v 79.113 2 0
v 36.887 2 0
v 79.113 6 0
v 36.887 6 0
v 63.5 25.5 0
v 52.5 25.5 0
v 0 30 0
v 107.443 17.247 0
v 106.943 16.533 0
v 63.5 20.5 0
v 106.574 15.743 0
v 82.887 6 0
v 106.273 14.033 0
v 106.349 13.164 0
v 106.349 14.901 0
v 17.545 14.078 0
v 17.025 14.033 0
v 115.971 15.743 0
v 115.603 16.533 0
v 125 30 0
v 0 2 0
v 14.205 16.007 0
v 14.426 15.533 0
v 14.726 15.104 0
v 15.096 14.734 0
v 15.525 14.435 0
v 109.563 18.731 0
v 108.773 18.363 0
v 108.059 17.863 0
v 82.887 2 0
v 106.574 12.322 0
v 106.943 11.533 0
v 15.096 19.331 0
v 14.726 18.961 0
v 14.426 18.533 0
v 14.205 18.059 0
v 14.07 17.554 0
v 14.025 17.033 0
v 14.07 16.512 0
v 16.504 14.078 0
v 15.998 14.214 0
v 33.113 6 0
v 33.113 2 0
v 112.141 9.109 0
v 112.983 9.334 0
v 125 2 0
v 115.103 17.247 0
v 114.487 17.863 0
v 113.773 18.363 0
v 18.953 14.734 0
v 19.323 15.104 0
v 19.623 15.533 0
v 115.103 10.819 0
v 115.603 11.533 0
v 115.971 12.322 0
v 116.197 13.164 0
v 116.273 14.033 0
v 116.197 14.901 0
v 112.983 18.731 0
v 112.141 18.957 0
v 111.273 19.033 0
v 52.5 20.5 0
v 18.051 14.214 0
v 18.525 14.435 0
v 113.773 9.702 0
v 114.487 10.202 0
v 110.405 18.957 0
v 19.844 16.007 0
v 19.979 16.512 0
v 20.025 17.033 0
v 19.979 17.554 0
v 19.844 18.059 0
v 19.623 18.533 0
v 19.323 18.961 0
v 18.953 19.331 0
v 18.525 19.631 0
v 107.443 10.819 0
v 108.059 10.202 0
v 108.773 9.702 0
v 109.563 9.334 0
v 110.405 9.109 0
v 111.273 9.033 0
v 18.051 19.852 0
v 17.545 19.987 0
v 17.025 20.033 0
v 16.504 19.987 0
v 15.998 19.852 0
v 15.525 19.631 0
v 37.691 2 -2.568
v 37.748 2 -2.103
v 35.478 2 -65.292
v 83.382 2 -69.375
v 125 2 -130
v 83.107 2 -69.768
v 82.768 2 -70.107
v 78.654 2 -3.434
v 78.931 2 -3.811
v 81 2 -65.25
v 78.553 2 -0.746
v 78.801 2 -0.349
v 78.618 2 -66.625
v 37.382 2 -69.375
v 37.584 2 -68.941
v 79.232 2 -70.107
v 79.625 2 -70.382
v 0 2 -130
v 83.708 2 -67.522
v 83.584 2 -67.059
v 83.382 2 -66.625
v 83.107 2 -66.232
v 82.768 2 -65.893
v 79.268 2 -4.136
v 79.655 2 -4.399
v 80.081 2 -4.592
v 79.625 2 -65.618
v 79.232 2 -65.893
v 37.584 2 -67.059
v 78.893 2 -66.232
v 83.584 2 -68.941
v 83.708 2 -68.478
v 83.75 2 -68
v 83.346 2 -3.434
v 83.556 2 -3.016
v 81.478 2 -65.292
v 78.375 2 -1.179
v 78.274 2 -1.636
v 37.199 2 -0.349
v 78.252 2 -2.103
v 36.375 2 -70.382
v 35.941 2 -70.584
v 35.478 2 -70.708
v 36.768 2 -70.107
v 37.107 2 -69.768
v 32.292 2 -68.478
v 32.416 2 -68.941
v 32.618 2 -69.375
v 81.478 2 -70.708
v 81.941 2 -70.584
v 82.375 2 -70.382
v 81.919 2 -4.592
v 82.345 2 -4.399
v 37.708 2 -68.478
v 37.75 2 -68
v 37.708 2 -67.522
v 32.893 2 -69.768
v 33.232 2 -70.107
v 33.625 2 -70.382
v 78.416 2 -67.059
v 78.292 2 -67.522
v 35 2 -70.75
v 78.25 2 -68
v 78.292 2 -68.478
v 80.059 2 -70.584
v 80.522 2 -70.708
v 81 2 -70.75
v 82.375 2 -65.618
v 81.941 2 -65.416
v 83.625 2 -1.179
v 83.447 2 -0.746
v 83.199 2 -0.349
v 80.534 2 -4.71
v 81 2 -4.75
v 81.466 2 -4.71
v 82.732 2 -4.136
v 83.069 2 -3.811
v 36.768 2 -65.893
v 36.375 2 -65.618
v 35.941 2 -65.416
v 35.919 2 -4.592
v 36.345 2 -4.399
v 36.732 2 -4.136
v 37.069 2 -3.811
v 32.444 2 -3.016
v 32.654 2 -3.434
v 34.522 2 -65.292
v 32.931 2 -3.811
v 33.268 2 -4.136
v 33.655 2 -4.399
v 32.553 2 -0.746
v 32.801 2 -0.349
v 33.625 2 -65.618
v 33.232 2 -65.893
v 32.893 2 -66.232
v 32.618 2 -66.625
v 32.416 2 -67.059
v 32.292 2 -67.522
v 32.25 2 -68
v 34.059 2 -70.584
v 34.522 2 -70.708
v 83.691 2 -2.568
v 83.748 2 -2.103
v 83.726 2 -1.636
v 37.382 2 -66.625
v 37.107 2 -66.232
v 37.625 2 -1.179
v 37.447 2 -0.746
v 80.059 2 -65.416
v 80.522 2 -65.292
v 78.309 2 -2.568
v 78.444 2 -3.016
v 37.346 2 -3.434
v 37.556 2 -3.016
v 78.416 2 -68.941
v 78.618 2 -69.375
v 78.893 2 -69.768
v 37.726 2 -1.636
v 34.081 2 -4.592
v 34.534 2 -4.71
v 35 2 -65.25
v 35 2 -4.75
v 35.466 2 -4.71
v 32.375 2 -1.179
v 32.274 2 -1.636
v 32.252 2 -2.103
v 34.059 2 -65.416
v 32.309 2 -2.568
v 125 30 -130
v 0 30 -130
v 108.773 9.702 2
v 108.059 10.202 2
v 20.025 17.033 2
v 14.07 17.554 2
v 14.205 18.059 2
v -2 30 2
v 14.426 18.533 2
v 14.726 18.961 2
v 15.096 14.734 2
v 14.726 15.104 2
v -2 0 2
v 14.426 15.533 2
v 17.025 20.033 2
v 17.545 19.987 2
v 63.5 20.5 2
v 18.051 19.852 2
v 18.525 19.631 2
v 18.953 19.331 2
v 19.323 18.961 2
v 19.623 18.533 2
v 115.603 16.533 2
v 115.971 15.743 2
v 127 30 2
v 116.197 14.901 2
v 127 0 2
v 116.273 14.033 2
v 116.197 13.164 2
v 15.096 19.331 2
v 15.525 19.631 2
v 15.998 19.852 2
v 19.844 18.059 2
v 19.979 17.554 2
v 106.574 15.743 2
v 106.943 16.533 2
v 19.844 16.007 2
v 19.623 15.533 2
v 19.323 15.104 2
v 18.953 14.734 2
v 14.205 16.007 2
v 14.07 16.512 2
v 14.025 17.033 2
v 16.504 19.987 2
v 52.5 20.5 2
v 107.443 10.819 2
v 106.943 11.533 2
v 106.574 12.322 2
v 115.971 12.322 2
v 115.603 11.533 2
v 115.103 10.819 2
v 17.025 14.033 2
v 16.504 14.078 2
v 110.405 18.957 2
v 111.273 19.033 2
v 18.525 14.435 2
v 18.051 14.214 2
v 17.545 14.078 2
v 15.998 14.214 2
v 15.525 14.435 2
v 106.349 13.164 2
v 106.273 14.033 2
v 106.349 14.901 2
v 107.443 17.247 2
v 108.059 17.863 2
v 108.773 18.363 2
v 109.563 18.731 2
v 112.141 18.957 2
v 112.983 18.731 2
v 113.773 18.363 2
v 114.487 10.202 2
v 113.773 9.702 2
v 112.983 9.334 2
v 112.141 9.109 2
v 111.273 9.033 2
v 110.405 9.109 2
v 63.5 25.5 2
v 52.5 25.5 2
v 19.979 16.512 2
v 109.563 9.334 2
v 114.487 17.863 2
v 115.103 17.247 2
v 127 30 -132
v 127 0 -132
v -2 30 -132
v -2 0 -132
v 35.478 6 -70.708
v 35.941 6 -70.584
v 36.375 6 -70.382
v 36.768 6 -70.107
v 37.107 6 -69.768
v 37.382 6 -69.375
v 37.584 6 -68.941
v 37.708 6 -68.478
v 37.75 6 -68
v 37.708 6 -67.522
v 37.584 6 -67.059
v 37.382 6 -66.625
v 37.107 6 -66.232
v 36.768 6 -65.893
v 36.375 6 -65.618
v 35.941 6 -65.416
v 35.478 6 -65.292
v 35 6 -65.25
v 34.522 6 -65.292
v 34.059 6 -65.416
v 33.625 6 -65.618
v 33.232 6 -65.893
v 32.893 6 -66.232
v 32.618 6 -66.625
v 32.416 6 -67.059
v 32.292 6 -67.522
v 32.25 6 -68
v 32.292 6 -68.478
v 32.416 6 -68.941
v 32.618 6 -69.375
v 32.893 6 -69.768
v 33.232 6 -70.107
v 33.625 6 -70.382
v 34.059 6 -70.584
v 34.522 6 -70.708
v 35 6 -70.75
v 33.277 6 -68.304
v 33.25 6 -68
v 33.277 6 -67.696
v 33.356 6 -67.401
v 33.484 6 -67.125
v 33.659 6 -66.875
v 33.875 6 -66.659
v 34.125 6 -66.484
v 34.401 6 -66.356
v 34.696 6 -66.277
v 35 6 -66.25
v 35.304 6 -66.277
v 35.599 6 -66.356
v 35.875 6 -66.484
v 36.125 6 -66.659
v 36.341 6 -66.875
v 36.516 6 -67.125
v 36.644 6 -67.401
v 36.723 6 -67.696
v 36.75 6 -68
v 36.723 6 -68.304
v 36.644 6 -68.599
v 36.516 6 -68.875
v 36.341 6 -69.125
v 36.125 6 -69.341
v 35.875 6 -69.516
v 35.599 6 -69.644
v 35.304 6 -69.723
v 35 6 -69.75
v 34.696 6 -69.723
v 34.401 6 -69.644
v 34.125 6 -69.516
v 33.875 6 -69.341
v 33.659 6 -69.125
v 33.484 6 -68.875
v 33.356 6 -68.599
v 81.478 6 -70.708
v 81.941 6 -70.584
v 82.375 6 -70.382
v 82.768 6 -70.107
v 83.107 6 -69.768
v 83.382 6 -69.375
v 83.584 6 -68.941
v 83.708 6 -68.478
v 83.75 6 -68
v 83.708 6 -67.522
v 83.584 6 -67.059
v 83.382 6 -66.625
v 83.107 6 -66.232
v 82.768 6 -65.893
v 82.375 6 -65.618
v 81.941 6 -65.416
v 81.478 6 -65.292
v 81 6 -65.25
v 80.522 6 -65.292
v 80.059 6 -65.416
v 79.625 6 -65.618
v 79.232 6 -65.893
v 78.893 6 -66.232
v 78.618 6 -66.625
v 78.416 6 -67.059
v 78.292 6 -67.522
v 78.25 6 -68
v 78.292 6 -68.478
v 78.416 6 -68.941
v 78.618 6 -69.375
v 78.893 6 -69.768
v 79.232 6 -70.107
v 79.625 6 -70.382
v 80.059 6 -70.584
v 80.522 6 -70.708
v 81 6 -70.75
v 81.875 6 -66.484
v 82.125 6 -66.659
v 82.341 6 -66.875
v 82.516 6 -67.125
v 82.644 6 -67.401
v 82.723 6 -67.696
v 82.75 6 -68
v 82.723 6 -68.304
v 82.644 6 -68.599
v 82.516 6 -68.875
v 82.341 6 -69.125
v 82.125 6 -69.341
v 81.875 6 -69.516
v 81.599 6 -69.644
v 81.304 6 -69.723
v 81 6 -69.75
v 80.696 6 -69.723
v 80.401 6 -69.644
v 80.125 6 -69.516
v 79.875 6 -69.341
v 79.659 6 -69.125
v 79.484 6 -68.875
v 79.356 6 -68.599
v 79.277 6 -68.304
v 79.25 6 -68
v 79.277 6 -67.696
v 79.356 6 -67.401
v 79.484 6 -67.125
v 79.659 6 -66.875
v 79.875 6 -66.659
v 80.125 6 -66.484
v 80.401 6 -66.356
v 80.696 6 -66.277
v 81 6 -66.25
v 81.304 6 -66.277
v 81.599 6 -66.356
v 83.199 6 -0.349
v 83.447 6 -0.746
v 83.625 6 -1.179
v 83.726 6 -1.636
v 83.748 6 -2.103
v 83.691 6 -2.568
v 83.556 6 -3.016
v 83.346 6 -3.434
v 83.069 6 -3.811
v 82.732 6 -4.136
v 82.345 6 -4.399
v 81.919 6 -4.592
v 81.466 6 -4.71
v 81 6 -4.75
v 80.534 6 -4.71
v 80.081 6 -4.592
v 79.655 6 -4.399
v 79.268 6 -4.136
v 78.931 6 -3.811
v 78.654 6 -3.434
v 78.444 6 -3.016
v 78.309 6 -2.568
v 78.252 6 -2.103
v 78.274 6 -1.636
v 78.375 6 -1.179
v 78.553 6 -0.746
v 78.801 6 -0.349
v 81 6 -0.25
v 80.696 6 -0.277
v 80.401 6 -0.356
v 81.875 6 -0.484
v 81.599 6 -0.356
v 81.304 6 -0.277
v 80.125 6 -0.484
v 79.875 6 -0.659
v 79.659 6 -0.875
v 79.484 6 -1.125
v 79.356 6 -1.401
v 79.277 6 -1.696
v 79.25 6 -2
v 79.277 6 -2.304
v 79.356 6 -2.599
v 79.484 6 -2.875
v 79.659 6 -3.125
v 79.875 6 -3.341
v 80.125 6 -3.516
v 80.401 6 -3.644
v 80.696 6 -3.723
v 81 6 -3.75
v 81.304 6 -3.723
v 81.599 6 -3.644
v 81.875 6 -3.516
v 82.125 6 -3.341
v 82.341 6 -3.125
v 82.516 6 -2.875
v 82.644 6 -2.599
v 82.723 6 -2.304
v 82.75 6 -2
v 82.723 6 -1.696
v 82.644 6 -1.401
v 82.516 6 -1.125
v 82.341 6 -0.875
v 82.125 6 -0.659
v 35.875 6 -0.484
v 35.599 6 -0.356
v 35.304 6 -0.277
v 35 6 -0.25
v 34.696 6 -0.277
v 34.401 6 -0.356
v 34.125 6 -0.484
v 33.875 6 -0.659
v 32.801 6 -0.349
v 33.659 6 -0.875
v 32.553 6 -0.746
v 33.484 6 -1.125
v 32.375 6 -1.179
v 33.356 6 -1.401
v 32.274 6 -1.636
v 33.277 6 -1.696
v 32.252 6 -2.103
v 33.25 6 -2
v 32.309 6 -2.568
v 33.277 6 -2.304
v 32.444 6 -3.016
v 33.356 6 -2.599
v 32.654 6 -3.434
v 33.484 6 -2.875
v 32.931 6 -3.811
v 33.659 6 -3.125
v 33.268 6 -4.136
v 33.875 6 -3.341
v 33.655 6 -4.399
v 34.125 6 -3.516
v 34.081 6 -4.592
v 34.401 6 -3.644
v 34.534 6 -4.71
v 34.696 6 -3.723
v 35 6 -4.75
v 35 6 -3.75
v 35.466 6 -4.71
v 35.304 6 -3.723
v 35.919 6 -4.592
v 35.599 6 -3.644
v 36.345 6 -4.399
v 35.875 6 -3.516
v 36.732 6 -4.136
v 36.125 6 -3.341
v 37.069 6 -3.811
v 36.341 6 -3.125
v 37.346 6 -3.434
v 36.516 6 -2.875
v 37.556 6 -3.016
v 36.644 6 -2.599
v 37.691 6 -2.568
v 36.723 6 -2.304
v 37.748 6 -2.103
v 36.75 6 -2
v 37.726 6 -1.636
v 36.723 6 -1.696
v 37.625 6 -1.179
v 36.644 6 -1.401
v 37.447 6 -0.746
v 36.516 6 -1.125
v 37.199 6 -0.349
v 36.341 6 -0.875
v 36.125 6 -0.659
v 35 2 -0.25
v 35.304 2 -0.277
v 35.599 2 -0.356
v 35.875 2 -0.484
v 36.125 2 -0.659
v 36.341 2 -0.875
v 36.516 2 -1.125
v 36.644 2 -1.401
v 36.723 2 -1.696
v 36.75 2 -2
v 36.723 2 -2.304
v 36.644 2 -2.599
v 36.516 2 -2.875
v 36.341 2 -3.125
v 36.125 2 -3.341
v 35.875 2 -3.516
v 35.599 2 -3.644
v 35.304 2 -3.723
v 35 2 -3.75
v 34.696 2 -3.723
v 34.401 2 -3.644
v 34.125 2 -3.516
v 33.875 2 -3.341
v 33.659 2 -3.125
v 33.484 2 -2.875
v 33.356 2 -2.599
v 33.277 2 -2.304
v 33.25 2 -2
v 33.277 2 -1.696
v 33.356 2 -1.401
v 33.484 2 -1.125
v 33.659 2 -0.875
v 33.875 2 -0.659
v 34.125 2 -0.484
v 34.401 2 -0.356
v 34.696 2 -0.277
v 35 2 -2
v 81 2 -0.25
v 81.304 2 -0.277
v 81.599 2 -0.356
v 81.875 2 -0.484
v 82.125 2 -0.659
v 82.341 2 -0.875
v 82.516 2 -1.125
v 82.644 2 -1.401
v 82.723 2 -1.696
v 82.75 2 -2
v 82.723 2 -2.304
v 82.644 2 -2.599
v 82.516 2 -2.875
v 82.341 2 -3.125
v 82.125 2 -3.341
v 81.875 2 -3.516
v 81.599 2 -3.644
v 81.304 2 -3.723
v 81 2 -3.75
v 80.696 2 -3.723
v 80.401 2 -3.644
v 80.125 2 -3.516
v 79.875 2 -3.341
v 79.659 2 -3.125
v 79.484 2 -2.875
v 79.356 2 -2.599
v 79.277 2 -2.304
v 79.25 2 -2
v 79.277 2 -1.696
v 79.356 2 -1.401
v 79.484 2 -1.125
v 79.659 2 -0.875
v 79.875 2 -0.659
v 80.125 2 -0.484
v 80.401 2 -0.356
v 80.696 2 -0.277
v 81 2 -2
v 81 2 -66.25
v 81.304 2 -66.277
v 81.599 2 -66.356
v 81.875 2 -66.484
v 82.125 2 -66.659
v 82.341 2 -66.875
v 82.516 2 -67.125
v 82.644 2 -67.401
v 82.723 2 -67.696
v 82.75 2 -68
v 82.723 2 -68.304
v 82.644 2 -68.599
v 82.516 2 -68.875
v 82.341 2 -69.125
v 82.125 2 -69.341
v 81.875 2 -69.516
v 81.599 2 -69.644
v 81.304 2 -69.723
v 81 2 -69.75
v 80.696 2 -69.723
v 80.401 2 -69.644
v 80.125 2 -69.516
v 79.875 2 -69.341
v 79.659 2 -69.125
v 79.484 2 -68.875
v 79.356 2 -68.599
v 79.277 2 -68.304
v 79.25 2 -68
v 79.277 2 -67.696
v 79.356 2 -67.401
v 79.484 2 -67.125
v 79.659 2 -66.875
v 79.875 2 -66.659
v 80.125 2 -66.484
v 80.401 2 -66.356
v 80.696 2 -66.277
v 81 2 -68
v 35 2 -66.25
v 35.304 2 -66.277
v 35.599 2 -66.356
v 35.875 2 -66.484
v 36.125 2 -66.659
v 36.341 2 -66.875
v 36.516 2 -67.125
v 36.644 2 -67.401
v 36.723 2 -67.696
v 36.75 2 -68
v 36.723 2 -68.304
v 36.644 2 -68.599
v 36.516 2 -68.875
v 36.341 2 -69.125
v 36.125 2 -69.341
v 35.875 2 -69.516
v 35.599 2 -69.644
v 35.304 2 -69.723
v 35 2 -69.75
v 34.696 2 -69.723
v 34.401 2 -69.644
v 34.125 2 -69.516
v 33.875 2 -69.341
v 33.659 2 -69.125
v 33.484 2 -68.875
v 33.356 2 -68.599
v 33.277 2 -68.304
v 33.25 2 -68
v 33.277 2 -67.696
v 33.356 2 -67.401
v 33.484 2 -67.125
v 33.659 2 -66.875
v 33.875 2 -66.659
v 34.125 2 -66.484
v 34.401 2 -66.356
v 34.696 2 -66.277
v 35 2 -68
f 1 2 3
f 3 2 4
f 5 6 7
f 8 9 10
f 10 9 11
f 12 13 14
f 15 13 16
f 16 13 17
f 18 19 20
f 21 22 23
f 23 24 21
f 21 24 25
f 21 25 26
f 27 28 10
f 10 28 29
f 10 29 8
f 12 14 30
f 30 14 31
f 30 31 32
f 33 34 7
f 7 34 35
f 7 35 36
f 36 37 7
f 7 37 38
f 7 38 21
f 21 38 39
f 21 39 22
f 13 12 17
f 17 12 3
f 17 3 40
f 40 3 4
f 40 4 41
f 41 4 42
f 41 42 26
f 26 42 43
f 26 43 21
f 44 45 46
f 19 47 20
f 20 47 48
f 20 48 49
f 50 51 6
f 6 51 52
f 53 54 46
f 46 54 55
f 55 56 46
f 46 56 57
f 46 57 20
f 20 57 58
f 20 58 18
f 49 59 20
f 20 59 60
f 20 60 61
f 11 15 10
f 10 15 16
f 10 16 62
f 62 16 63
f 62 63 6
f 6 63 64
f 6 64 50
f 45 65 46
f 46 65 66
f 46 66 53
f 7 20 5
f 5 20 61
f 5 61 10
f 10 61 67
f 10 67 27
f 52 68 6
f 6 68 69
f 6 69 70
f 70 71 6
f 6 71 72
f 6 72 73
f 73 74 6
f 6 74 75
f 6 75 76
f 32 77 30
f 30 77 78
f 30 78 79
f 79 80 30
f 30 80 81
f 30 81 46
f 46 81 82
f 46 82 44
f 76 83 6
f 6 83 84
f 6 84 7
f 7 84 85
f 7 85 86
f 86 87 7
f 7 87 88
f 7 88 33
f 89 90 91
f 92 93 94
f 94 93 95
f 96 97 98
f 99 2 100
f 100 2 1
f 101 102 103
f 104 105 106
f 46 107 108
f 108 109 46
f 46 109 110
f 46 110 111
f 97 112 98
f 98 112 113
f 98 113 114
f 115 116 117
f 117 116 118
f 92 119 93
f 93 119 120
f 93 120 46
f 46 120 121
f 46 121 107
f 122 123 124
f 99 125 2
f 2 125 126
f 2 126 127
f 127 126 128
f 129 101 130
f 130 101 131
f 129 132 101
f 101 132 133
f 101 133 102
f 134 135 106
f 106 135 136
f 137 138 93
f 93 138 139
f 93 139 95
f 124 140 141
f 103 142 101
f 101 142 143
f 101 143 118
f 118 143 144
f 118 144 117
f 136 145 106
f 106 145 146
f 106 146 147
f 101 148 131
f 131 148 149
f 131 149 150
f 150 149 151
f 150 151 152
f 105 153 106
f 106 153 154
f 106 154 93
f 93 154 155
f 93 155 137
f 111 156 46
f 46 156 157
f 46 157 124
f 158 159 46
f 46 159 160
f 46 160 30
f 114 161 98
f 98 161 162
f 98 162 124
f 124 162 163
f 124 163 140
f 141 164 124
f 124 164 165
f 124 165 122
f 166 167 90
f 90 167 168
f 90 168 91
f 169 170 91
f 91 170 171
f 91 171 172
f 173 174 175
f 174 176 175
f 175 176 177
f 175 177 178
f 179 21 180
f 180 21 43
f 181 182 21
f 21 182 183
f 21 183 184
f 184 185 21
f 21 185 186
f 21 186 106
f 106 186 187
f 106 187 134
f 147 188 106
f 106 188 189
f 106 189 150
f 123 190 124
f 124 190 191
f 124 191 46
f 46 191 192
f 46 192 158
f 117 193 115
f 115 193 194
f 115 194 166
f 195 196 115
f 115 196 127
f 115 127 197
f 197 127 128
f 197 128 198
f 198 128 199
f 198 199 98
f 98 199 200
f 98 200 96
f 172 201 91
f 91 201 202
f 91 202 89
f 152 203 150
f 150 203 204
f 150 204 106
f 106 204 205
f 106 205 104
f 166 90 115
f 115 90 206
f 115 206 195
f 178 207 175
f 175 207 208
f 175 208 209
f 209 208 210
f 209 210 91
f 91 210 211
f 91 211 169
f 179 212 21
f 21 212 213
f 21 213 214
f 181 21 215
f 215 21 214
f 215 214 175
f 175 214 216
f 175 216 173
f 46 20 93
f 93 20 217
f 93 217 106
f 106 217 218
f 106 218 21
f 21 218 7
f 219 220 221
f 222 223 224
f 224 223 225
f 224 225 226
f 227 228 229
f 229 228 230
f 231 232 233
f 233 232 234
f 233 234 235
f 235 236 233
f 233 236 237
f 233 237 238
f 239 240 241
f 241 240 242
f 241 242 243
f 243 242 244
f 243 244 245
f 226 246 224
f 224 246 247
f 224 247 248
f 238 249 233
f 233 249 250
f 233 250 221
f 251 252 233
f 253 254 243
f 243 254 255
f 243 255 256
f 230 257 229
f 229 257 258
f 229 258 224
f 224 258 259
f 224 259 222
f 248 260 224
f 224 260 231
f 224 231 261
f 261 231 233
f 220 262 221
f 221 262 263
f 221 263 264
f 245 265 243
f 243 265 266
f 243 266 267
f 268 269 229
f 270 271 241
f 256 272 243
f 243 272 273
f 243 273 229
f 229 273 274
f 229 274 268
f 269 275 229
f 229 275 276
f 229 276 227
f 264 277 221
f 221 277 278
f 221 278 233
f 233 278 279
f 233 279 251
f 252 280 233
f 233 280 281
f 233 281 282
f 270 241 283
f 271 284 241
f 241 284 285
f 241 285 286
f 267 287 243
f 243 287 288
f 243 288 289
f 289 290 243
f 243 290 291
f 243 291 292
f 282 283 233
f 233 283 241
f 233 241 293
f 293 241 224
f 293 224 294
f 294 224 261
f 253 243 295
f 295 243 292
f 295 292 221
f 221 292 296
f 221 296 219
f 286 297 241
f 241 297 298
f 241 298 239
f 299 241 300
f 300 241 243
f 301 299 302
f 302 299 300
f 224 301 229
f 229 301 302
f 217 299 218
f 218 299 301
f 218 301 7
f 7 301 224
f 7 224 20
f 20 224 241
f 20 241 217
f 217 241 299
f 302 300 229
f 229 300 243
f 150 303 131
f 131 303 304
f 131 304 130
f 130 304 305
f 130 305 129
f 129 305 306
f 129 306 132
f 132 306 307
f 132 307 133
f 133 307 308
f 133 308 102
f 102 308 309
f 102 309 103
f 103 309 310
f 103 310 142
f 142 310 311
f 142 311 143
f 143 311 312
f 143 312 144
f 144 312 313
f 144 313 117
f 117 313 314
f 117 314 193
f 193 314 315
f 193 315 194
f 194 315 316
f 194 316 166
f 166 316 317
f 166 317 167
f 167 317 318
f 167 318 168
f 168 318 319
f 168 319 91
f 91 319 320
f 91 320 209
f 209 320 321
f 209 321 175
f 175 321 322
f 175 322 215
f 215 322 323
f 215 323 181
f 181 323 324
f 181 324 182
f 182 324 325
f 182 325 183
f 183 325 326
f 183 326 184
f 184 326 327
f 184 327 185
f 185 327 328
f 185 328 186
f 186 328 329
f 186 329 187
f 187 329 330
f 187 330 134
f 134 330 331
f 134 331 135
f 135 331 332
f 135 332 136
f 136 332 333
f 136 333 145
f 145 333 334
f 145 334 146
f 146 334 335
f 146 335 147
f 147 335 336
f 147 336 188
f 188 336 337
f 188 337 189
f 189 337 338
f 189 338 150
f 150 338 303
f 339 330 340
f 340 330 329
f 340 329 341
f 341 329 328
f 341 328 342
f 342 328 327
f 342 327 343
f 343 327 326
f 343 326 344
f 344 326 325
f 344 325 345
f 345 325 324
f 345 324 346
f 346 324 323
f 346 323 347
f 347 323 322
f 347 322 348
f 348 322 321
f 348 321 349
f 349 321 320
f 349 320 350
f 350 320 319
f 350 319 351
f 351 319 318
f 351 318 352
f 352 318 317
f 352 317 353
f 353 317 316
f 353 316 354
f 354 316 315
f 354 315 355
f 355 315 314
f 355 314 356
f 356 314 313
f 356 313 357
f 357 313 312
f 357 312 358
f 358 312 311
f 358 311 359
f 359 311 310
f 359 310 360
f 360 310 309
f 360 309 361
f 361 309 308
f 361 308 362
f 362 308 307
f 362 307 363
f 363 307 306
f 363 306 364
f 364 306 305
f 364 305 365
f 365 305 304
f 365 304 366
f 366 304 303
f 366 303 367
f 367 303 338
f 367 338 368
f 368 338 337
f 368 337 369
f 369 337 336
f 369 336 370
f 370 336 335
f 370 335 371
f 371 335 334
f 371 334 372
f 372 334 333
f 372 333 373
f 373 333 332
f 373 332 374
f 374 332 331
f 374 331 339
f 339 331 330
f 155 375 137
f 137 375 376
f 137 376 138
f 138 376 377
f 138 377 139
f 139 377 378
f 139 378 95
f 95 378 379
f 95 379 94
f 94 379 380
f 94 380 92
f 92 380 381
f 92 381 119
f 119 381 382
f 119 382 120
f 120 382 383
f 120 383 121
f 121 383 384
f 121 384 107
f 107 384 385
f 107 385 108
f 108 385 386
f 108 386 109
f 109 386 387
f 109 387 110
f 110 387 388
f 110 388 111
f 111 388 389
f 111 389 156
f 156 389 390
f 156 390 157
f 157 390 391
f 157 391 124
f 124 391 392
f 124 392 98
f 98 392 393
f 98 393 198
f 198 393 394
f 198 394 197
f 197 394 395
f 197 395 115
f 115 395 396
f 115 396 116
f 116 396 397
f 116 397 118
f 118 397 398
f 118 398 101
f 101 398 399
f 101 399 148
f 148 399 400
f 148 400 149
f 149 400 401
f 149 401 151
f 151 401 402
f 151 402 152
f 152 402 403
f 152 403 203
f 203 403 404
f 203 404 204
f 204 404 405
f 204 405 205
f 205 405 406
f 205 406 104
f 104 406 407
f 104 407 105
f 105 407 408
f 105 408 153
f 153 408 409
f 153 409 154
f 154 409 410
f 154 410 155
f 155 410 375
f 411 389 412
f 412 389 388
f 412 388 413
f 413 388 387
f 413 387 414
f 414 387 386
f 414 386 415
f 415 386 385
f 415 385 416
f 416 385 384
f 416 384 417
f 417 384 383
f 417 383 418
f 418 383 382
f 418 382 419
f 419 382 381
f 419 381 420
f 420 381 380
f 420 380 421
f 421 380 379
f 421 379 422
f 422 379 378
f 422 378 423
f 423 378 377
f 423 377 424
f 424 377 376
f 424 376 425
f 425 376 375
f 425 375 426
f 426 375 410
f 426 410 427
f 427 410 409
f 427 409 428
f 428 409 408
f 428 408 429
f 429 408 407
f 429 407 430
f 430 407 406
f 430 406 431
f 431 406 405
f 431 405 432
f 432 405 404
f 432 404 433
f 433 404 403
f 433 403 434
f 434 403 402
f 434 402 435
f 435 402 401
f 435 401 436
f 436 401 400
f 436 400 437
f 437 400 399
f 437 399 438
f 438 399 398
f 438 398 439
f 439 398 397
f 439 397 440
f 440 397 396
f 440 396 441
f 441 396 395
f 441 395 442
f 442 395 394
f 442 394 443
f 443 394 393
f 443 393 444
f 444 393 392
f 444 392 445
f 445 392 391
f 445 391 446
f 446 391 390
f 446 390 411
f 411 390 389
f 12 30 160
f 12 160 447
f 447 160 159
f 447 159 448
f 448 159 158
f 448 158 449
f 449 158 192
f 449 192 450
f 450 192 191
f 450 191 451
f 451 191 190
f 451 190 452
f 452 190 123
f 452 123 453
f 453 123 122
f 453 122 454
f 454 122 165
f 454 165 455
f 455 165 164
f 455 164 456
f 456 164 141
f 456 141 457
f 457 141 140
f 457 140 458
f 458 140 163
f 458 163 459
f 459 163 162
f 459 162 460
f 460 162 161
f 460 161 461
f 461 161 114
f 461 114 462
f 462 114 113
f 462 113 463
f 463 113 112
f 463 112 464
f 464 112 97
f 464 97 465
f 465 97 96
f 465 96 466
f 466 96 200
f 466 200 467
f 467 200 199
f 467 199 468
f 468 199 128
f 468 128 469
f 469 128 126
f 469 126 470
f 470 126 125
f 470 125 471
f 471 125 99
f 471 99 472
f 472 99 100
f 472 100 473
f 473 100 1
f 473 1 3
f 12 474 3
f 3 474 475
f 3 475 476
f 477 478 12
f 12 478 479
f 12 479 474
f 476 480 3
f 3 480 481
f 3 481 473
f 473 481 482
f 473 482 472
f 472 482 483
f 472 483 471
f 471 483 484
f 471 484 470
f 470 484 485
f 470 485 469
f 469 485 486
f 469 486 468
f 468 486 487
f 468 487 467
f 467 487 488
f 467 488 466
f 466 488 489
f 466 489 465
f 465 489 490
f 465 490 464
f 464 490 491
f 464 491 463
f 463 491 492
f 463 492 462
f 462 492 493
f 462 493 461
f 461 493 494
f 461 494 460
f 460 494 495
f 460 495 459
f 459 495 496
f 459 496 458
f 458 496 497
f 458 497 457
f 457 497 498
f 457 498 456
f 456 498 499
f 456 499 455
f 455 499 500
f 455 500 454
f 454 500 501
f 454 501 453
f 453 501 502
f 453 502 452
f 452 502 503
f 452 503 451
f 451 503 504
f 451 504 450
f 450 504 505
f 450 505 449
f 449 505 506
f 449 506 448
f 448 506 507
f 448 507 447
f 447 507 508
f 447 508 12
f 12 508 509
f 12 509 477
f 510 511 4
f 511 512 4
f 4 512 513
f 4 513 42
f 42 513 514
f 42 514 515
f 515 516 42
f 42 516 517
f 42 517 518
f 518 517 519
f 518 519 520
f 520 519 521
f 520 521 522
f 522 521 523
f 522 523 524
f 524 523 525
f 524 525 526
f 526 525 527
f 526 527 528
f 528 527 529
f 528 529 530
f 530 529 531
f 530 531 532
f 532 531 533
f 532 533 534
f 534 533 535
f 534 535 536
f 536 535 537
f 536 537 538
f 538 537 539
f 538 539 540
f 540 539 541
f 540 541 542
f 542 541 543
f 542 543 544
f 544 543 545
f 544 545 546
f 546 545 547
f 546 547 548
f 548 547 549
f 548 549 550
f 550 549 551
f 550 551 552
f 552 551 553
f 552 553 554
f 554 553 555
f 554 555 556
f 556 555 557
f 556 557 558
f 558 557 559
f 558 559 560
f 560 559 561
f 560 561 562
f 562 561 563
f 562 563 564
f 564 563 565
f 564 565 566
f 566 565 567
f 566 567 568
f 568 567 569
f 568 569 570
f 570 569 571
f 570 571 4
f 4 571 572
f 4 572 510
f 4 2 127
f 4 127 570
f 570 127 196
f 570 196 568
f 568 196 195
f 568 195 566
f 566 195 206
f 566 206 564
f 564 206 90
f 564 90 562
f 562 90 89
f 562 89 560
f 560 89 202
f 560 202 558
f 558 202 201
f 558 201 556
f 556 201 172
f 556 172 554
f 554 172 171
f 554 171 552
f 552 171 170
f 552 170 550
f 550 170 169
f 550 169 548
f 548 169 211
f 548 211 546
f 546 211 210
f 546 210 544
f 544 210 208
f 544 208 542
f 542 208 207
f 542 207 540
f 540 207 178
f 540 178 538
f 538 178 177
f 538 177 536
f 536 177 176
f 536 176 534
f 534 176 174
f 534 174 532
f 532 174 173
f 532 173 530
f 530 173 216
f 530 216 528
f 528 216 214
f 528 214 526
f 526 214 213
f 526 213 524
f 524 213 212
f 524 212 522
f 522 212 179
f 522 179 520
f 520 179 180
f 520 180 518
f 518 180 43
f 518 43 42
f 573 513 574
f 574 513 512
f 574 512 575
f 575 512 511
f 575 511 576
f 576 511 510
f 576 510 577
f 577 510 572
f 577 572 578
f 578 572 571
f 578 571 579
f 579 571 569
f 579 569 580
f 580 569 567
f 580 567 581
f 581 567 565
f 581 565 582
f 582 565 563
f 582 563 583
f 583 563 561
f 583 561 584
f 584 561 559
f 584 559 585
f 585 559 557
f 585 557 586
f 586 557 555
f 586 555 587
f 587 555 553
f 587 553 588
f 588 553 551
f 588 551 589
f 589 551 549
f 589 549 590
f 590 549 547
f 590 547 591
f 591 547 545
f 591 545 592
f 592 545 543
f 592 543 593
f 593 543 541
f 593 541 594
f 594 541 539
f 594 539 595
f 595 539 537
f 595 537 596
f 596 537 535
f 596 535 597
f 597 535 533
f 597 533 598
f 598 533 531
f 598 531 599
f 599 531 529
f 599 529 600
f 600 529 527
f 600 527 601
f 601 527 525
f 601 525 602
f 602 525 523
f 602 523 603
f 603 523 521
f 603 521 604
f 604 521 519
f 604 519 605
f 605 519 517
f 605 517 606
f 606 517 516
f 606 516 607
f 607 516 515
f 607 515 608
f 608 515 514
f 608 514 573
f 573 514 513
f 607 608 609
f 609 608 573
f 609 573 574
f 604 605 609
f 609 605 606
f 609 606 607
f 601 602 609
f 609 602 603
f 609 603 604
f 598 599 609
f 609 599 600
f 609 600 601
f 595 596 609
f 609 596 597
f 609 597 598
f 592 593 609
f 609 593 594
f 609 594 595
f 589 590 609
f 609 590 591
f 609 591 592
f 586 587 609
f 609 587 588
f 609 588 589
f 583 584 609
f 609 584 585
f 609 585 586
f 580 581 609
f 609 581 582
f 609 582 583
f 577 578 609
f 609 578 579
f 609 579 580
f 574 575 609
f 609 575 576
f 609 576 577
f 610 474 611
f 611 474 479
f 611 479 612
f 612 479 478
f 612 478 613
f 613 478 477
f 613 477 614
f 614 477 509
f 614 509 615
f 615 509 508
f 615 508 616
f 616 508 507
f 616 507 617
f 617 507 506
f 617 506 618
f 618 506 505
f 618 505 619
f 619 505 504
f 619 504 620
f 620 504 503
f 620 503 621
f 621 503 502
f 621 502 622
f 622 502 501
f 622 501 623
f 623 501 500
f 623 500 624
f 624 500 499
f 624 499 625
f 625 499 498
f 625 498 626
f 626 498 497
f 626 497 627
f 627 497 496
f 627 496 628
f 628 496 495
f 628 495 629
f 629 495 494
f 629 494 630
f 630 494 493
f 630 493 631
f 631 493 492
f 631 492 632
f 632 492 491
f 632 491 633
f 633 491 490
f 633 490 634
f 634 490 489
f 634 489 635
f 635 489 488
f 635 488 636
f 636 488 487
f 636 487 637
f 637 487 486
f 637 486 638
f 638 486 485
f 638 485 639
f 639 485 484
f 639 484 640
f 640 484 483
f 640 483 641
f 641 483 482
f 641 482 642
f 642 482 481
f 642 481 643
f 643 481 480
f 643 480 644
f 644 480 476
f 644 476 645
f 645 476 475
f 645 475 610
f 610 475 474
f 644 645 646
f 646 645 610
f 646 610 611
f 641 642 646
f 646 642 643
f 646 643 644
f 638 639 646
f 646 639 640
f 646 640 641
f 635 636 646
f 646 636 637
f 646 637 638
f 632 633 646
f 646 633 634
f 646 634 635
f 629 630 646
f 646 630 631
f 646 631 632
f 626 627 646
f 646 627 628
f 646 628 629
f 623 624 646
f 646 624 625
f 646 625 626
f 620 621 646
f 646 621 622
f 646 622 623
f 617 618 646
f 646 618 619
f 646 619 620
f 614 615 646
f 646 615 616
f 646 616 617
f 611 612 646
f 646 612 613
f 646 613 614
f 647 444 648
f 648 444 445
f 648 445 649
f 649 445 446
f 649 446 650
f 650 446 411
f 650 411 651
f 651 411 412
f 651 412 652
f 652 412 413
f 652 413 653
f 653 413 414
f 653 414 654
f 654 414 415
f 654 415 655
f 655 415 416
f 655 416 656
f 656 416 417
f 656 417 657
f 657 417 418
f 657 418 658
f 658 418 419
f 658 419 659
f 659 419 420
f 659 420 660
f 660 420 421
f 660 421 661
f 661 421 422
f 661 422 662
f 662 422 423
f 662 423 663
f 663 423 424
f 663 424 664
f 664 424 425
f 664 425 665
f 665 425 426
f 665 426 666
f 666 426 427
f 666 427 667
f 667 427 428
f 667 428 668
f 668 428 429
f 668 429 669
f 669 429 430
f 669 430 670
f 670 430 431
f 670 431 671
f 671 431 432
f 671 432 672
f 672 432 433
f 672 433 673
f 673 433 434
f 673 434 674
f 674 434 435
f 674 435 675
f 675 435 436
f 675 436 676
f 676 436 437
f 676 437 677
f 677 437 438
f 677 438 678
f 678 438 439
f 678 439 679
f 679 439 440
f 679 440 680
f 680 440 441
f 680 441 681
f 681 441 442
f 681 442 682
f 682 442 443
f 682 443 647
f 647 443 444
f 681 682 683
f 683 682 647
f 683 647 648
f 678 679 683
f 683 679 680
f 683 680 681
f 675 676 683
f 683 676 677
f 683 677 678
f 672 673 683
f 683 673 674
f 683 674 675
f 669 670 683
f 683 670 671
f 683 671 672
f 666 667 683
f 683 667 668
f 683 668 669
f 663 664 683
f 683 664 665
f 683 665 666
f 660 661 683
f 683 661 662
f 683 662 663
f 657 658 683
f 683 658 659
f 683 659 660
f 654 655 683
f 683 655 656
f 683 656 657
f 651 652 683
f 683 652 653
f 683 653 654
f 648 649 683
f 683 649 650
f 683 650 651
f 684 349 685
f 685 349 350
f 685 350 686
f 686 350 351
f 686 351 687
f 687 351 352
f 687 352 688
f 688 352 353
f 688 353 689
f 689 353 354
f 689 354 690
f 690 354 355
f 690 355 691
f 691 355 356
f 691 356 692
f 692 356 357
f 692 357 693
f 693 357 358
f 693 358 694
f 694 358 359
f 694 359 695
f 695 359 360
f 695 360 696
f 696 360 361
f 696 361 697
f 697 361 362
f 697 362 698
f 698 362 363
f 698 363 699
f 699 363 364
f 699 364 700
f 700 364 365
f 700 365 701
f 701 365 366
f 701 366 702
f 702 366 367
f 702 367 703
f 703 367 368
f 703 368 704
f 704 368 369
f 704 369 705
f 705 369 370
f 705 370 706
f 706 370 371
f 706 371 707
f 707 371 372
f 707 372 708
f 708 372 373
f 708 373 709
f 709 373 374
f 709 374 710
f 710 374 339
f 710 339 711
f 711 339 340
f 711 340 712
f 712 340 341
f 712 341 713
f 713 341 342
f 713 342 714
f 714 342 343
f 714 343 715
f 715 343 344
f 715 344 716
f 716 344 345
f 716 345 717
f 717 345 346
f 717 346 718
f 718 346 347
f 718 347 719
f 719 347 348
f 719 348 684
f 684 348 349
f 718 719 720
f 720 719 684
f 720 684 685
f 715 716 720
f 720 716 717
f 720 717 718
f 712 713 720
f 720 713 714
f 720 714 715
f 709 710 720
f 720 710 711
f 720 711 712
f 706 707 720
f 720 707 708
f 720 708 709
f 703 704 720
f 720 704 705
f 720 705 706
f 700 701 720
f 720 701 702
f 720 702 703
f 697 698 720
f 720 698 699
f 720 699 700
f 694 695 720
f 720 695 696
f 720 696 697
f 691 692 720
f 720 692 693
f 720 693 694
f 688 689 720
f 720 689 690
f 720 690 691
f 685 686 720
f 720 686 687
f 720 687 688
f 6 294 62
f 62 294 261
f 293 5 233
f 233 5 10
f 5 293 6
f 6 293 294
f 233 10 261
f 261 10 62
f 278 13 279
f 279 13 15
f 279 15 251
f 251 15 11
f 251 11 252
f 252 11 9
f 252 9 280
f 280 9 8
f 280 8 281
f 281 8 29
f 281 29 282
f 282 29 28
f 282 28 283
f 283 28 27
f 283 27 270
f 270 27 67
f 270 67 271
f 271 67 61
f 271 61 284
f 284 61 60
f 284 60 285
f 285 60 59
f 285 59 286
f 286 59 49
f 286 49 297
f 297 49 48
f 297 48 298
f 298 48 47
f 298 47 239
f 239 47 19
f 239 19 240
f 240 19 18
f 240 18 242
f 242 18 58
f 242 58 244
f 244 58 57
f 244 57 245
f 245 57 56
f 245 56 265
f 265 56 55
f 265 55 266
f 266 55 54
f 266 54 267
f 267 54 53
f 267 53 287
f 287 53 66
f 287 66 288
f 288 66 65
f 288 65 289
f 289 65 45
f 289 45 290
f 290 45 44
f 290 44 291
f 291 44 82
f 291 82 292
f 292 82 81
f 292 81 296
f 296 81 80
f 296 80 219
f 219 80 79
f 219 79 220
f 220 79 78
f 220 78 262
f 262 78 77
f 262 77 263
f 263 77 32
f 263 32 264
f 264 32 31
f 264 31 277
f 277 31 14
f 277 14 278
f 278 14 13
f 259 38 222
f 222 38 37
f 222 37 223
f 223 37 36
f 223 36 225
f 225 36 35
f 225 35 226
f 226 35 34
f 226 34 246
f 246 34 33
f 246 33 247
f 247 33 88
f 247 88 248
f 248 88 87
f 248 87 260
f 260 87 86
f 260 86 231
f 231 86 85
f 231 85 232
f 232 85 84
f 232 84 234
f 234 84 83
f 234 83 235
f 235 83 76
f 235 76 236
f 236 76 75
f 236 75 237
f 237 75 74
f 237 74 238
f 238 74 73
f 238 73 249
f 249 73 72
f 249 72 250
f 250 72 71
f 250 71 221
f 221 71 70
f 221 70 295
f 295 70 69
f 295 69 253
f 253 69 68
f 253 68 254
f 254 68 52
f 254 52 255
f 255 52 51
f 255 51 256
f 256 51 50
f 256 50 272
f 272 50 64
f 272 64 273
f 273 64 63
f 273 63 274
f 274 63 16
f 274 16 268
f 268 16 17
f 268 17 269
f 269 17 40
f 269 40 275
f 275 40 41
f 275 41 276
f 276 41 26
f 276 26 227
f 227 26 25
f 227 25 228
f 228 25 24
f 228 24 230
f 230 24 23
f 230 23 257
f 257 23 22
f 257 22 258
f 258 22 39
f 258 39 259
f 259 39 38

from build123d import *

# Parameters (mm, degrees)
SKETCH1_W           = 125
SKETCH1_H           = 130
BOSS_EXTRUDE1_DEPTH = 2
SKETCH2_W           = 129
SKETCH2_H           = 134
SKETCH2_W_2         = 125
SKETCH2_H_2         = 130
BOSS_EXTRUDE2_DEPTH = 30
SKETCH3_R           = 2.75
BOSS_EXTRUDE3_DEPTH = 4
SKETCH4_R           = 1.75
CUT_EXTRUDE1_DEPTH  = 4
SKETCH5_W           = 11
SKETCH5_H           = 2
CUT_EXTRUDE2_DEPTH  = 5
SKETCH6_R           = 3
SKETCH6_R_2         = 5
CUT_EXTRUDE3_DEPTH  = 5


with BuildPart() as part:
    # Sketch1 → Boss-Extrude1 (new body)
    with BuildSketch(Plane(origin=(0, 0, 0), x_dir=(1, 0, 0), z_dir=(0, 1, 0))):
        with Locations((62.5, 65)):
            Rectangle(SKETCH1_W, SKETCH1_H)
    extrude(amount=BOSS_EXTRUDE1_DEPTH)

    # Sketch2 → Boss-Extrude2 (add)
    with BuildSketch(Plane.XZ):
        with Locations((62.5, -65)):
            Rectangle(SKETCH2_W, SKETCH2_H)
        with Locations((62.5, -65)):
            Rectangle(SKETCH2_W_2, SKETCH2_H_2, mode=Mode.SUBTRACT)
    extrude(amount=-BOSS_EXTRUDE2_DEPTH)

    # Sketch3 → Boss-Extrude3 (add)
    with BuildSketch(Plane(origin=(0, 2, 0), x_dir=(1, 0, 0), z_dir=(0, 1, 0))):
        with Locations((35, 68)):
            Circle(SKETCH3_R)
        with Locations((81, 68)):
            Circle(SKETCH3_R)
        with Locations((81, 2)):
            Circle(SKETCH3_R)
        with Locations((35, 2)):
            Circle(SKETCH3_R)
    extrude(amount=BOSS_EXTRUDE3_DEPTH)

    # Sketch4 → Cut-Extrude1 (cut)
    with BuildSketch(Plane(origin=(0, 6, 0), x_dir=(1, 0, 0), z_dir=(0, 1, 0))):
        with Locations((81, 2)):
            Circle(SKETCH4_R)
        with Locations((35, 2)):
            Circle(SKETCH4_R)
        with Locations((35, 68)):
            Circle(SKETCH4_R)
        with Locations((81, 68)):
            Circle(SKETCH4_R)
    extrude(amount=-CUT_EXTRUDE1_DEPTH, mode=Mode.SUBTRACT)

    # Sketch5 → Cut-Extrude2 (cut)
    with BuildSketch(Plane(origin=(0, 20.5, 0), x_dir=(1, 0, 0), z_dir=(0, 1, 0))):
        with Locations((58, -1)):
            Rectangle(SKETCH5_W, SKETCH5_H)
    extrude(amount=CUT_EXTRUDE2_DEPTH, mode=Mode.SUBTRACT)

    # Sketch6 → Cut-Extrude3 (cut)
    with BuildSketch(Plane(origin=(0, 0, 0), x_dir=(-1, 0, 0), z_dir=(0, 0, -1))):
        with Locations((-17.024516763, 17.032581473)):
            Circle(SKETCH6_R)
        with Locations((-111.272952747, 14.032581473)):
            Circle(SKETCH6_R_2)
    extrude(amount=-CUT_EXTRUDE3_DEPTH, mode=Mode.SUBTRACT)


solid = part.part
